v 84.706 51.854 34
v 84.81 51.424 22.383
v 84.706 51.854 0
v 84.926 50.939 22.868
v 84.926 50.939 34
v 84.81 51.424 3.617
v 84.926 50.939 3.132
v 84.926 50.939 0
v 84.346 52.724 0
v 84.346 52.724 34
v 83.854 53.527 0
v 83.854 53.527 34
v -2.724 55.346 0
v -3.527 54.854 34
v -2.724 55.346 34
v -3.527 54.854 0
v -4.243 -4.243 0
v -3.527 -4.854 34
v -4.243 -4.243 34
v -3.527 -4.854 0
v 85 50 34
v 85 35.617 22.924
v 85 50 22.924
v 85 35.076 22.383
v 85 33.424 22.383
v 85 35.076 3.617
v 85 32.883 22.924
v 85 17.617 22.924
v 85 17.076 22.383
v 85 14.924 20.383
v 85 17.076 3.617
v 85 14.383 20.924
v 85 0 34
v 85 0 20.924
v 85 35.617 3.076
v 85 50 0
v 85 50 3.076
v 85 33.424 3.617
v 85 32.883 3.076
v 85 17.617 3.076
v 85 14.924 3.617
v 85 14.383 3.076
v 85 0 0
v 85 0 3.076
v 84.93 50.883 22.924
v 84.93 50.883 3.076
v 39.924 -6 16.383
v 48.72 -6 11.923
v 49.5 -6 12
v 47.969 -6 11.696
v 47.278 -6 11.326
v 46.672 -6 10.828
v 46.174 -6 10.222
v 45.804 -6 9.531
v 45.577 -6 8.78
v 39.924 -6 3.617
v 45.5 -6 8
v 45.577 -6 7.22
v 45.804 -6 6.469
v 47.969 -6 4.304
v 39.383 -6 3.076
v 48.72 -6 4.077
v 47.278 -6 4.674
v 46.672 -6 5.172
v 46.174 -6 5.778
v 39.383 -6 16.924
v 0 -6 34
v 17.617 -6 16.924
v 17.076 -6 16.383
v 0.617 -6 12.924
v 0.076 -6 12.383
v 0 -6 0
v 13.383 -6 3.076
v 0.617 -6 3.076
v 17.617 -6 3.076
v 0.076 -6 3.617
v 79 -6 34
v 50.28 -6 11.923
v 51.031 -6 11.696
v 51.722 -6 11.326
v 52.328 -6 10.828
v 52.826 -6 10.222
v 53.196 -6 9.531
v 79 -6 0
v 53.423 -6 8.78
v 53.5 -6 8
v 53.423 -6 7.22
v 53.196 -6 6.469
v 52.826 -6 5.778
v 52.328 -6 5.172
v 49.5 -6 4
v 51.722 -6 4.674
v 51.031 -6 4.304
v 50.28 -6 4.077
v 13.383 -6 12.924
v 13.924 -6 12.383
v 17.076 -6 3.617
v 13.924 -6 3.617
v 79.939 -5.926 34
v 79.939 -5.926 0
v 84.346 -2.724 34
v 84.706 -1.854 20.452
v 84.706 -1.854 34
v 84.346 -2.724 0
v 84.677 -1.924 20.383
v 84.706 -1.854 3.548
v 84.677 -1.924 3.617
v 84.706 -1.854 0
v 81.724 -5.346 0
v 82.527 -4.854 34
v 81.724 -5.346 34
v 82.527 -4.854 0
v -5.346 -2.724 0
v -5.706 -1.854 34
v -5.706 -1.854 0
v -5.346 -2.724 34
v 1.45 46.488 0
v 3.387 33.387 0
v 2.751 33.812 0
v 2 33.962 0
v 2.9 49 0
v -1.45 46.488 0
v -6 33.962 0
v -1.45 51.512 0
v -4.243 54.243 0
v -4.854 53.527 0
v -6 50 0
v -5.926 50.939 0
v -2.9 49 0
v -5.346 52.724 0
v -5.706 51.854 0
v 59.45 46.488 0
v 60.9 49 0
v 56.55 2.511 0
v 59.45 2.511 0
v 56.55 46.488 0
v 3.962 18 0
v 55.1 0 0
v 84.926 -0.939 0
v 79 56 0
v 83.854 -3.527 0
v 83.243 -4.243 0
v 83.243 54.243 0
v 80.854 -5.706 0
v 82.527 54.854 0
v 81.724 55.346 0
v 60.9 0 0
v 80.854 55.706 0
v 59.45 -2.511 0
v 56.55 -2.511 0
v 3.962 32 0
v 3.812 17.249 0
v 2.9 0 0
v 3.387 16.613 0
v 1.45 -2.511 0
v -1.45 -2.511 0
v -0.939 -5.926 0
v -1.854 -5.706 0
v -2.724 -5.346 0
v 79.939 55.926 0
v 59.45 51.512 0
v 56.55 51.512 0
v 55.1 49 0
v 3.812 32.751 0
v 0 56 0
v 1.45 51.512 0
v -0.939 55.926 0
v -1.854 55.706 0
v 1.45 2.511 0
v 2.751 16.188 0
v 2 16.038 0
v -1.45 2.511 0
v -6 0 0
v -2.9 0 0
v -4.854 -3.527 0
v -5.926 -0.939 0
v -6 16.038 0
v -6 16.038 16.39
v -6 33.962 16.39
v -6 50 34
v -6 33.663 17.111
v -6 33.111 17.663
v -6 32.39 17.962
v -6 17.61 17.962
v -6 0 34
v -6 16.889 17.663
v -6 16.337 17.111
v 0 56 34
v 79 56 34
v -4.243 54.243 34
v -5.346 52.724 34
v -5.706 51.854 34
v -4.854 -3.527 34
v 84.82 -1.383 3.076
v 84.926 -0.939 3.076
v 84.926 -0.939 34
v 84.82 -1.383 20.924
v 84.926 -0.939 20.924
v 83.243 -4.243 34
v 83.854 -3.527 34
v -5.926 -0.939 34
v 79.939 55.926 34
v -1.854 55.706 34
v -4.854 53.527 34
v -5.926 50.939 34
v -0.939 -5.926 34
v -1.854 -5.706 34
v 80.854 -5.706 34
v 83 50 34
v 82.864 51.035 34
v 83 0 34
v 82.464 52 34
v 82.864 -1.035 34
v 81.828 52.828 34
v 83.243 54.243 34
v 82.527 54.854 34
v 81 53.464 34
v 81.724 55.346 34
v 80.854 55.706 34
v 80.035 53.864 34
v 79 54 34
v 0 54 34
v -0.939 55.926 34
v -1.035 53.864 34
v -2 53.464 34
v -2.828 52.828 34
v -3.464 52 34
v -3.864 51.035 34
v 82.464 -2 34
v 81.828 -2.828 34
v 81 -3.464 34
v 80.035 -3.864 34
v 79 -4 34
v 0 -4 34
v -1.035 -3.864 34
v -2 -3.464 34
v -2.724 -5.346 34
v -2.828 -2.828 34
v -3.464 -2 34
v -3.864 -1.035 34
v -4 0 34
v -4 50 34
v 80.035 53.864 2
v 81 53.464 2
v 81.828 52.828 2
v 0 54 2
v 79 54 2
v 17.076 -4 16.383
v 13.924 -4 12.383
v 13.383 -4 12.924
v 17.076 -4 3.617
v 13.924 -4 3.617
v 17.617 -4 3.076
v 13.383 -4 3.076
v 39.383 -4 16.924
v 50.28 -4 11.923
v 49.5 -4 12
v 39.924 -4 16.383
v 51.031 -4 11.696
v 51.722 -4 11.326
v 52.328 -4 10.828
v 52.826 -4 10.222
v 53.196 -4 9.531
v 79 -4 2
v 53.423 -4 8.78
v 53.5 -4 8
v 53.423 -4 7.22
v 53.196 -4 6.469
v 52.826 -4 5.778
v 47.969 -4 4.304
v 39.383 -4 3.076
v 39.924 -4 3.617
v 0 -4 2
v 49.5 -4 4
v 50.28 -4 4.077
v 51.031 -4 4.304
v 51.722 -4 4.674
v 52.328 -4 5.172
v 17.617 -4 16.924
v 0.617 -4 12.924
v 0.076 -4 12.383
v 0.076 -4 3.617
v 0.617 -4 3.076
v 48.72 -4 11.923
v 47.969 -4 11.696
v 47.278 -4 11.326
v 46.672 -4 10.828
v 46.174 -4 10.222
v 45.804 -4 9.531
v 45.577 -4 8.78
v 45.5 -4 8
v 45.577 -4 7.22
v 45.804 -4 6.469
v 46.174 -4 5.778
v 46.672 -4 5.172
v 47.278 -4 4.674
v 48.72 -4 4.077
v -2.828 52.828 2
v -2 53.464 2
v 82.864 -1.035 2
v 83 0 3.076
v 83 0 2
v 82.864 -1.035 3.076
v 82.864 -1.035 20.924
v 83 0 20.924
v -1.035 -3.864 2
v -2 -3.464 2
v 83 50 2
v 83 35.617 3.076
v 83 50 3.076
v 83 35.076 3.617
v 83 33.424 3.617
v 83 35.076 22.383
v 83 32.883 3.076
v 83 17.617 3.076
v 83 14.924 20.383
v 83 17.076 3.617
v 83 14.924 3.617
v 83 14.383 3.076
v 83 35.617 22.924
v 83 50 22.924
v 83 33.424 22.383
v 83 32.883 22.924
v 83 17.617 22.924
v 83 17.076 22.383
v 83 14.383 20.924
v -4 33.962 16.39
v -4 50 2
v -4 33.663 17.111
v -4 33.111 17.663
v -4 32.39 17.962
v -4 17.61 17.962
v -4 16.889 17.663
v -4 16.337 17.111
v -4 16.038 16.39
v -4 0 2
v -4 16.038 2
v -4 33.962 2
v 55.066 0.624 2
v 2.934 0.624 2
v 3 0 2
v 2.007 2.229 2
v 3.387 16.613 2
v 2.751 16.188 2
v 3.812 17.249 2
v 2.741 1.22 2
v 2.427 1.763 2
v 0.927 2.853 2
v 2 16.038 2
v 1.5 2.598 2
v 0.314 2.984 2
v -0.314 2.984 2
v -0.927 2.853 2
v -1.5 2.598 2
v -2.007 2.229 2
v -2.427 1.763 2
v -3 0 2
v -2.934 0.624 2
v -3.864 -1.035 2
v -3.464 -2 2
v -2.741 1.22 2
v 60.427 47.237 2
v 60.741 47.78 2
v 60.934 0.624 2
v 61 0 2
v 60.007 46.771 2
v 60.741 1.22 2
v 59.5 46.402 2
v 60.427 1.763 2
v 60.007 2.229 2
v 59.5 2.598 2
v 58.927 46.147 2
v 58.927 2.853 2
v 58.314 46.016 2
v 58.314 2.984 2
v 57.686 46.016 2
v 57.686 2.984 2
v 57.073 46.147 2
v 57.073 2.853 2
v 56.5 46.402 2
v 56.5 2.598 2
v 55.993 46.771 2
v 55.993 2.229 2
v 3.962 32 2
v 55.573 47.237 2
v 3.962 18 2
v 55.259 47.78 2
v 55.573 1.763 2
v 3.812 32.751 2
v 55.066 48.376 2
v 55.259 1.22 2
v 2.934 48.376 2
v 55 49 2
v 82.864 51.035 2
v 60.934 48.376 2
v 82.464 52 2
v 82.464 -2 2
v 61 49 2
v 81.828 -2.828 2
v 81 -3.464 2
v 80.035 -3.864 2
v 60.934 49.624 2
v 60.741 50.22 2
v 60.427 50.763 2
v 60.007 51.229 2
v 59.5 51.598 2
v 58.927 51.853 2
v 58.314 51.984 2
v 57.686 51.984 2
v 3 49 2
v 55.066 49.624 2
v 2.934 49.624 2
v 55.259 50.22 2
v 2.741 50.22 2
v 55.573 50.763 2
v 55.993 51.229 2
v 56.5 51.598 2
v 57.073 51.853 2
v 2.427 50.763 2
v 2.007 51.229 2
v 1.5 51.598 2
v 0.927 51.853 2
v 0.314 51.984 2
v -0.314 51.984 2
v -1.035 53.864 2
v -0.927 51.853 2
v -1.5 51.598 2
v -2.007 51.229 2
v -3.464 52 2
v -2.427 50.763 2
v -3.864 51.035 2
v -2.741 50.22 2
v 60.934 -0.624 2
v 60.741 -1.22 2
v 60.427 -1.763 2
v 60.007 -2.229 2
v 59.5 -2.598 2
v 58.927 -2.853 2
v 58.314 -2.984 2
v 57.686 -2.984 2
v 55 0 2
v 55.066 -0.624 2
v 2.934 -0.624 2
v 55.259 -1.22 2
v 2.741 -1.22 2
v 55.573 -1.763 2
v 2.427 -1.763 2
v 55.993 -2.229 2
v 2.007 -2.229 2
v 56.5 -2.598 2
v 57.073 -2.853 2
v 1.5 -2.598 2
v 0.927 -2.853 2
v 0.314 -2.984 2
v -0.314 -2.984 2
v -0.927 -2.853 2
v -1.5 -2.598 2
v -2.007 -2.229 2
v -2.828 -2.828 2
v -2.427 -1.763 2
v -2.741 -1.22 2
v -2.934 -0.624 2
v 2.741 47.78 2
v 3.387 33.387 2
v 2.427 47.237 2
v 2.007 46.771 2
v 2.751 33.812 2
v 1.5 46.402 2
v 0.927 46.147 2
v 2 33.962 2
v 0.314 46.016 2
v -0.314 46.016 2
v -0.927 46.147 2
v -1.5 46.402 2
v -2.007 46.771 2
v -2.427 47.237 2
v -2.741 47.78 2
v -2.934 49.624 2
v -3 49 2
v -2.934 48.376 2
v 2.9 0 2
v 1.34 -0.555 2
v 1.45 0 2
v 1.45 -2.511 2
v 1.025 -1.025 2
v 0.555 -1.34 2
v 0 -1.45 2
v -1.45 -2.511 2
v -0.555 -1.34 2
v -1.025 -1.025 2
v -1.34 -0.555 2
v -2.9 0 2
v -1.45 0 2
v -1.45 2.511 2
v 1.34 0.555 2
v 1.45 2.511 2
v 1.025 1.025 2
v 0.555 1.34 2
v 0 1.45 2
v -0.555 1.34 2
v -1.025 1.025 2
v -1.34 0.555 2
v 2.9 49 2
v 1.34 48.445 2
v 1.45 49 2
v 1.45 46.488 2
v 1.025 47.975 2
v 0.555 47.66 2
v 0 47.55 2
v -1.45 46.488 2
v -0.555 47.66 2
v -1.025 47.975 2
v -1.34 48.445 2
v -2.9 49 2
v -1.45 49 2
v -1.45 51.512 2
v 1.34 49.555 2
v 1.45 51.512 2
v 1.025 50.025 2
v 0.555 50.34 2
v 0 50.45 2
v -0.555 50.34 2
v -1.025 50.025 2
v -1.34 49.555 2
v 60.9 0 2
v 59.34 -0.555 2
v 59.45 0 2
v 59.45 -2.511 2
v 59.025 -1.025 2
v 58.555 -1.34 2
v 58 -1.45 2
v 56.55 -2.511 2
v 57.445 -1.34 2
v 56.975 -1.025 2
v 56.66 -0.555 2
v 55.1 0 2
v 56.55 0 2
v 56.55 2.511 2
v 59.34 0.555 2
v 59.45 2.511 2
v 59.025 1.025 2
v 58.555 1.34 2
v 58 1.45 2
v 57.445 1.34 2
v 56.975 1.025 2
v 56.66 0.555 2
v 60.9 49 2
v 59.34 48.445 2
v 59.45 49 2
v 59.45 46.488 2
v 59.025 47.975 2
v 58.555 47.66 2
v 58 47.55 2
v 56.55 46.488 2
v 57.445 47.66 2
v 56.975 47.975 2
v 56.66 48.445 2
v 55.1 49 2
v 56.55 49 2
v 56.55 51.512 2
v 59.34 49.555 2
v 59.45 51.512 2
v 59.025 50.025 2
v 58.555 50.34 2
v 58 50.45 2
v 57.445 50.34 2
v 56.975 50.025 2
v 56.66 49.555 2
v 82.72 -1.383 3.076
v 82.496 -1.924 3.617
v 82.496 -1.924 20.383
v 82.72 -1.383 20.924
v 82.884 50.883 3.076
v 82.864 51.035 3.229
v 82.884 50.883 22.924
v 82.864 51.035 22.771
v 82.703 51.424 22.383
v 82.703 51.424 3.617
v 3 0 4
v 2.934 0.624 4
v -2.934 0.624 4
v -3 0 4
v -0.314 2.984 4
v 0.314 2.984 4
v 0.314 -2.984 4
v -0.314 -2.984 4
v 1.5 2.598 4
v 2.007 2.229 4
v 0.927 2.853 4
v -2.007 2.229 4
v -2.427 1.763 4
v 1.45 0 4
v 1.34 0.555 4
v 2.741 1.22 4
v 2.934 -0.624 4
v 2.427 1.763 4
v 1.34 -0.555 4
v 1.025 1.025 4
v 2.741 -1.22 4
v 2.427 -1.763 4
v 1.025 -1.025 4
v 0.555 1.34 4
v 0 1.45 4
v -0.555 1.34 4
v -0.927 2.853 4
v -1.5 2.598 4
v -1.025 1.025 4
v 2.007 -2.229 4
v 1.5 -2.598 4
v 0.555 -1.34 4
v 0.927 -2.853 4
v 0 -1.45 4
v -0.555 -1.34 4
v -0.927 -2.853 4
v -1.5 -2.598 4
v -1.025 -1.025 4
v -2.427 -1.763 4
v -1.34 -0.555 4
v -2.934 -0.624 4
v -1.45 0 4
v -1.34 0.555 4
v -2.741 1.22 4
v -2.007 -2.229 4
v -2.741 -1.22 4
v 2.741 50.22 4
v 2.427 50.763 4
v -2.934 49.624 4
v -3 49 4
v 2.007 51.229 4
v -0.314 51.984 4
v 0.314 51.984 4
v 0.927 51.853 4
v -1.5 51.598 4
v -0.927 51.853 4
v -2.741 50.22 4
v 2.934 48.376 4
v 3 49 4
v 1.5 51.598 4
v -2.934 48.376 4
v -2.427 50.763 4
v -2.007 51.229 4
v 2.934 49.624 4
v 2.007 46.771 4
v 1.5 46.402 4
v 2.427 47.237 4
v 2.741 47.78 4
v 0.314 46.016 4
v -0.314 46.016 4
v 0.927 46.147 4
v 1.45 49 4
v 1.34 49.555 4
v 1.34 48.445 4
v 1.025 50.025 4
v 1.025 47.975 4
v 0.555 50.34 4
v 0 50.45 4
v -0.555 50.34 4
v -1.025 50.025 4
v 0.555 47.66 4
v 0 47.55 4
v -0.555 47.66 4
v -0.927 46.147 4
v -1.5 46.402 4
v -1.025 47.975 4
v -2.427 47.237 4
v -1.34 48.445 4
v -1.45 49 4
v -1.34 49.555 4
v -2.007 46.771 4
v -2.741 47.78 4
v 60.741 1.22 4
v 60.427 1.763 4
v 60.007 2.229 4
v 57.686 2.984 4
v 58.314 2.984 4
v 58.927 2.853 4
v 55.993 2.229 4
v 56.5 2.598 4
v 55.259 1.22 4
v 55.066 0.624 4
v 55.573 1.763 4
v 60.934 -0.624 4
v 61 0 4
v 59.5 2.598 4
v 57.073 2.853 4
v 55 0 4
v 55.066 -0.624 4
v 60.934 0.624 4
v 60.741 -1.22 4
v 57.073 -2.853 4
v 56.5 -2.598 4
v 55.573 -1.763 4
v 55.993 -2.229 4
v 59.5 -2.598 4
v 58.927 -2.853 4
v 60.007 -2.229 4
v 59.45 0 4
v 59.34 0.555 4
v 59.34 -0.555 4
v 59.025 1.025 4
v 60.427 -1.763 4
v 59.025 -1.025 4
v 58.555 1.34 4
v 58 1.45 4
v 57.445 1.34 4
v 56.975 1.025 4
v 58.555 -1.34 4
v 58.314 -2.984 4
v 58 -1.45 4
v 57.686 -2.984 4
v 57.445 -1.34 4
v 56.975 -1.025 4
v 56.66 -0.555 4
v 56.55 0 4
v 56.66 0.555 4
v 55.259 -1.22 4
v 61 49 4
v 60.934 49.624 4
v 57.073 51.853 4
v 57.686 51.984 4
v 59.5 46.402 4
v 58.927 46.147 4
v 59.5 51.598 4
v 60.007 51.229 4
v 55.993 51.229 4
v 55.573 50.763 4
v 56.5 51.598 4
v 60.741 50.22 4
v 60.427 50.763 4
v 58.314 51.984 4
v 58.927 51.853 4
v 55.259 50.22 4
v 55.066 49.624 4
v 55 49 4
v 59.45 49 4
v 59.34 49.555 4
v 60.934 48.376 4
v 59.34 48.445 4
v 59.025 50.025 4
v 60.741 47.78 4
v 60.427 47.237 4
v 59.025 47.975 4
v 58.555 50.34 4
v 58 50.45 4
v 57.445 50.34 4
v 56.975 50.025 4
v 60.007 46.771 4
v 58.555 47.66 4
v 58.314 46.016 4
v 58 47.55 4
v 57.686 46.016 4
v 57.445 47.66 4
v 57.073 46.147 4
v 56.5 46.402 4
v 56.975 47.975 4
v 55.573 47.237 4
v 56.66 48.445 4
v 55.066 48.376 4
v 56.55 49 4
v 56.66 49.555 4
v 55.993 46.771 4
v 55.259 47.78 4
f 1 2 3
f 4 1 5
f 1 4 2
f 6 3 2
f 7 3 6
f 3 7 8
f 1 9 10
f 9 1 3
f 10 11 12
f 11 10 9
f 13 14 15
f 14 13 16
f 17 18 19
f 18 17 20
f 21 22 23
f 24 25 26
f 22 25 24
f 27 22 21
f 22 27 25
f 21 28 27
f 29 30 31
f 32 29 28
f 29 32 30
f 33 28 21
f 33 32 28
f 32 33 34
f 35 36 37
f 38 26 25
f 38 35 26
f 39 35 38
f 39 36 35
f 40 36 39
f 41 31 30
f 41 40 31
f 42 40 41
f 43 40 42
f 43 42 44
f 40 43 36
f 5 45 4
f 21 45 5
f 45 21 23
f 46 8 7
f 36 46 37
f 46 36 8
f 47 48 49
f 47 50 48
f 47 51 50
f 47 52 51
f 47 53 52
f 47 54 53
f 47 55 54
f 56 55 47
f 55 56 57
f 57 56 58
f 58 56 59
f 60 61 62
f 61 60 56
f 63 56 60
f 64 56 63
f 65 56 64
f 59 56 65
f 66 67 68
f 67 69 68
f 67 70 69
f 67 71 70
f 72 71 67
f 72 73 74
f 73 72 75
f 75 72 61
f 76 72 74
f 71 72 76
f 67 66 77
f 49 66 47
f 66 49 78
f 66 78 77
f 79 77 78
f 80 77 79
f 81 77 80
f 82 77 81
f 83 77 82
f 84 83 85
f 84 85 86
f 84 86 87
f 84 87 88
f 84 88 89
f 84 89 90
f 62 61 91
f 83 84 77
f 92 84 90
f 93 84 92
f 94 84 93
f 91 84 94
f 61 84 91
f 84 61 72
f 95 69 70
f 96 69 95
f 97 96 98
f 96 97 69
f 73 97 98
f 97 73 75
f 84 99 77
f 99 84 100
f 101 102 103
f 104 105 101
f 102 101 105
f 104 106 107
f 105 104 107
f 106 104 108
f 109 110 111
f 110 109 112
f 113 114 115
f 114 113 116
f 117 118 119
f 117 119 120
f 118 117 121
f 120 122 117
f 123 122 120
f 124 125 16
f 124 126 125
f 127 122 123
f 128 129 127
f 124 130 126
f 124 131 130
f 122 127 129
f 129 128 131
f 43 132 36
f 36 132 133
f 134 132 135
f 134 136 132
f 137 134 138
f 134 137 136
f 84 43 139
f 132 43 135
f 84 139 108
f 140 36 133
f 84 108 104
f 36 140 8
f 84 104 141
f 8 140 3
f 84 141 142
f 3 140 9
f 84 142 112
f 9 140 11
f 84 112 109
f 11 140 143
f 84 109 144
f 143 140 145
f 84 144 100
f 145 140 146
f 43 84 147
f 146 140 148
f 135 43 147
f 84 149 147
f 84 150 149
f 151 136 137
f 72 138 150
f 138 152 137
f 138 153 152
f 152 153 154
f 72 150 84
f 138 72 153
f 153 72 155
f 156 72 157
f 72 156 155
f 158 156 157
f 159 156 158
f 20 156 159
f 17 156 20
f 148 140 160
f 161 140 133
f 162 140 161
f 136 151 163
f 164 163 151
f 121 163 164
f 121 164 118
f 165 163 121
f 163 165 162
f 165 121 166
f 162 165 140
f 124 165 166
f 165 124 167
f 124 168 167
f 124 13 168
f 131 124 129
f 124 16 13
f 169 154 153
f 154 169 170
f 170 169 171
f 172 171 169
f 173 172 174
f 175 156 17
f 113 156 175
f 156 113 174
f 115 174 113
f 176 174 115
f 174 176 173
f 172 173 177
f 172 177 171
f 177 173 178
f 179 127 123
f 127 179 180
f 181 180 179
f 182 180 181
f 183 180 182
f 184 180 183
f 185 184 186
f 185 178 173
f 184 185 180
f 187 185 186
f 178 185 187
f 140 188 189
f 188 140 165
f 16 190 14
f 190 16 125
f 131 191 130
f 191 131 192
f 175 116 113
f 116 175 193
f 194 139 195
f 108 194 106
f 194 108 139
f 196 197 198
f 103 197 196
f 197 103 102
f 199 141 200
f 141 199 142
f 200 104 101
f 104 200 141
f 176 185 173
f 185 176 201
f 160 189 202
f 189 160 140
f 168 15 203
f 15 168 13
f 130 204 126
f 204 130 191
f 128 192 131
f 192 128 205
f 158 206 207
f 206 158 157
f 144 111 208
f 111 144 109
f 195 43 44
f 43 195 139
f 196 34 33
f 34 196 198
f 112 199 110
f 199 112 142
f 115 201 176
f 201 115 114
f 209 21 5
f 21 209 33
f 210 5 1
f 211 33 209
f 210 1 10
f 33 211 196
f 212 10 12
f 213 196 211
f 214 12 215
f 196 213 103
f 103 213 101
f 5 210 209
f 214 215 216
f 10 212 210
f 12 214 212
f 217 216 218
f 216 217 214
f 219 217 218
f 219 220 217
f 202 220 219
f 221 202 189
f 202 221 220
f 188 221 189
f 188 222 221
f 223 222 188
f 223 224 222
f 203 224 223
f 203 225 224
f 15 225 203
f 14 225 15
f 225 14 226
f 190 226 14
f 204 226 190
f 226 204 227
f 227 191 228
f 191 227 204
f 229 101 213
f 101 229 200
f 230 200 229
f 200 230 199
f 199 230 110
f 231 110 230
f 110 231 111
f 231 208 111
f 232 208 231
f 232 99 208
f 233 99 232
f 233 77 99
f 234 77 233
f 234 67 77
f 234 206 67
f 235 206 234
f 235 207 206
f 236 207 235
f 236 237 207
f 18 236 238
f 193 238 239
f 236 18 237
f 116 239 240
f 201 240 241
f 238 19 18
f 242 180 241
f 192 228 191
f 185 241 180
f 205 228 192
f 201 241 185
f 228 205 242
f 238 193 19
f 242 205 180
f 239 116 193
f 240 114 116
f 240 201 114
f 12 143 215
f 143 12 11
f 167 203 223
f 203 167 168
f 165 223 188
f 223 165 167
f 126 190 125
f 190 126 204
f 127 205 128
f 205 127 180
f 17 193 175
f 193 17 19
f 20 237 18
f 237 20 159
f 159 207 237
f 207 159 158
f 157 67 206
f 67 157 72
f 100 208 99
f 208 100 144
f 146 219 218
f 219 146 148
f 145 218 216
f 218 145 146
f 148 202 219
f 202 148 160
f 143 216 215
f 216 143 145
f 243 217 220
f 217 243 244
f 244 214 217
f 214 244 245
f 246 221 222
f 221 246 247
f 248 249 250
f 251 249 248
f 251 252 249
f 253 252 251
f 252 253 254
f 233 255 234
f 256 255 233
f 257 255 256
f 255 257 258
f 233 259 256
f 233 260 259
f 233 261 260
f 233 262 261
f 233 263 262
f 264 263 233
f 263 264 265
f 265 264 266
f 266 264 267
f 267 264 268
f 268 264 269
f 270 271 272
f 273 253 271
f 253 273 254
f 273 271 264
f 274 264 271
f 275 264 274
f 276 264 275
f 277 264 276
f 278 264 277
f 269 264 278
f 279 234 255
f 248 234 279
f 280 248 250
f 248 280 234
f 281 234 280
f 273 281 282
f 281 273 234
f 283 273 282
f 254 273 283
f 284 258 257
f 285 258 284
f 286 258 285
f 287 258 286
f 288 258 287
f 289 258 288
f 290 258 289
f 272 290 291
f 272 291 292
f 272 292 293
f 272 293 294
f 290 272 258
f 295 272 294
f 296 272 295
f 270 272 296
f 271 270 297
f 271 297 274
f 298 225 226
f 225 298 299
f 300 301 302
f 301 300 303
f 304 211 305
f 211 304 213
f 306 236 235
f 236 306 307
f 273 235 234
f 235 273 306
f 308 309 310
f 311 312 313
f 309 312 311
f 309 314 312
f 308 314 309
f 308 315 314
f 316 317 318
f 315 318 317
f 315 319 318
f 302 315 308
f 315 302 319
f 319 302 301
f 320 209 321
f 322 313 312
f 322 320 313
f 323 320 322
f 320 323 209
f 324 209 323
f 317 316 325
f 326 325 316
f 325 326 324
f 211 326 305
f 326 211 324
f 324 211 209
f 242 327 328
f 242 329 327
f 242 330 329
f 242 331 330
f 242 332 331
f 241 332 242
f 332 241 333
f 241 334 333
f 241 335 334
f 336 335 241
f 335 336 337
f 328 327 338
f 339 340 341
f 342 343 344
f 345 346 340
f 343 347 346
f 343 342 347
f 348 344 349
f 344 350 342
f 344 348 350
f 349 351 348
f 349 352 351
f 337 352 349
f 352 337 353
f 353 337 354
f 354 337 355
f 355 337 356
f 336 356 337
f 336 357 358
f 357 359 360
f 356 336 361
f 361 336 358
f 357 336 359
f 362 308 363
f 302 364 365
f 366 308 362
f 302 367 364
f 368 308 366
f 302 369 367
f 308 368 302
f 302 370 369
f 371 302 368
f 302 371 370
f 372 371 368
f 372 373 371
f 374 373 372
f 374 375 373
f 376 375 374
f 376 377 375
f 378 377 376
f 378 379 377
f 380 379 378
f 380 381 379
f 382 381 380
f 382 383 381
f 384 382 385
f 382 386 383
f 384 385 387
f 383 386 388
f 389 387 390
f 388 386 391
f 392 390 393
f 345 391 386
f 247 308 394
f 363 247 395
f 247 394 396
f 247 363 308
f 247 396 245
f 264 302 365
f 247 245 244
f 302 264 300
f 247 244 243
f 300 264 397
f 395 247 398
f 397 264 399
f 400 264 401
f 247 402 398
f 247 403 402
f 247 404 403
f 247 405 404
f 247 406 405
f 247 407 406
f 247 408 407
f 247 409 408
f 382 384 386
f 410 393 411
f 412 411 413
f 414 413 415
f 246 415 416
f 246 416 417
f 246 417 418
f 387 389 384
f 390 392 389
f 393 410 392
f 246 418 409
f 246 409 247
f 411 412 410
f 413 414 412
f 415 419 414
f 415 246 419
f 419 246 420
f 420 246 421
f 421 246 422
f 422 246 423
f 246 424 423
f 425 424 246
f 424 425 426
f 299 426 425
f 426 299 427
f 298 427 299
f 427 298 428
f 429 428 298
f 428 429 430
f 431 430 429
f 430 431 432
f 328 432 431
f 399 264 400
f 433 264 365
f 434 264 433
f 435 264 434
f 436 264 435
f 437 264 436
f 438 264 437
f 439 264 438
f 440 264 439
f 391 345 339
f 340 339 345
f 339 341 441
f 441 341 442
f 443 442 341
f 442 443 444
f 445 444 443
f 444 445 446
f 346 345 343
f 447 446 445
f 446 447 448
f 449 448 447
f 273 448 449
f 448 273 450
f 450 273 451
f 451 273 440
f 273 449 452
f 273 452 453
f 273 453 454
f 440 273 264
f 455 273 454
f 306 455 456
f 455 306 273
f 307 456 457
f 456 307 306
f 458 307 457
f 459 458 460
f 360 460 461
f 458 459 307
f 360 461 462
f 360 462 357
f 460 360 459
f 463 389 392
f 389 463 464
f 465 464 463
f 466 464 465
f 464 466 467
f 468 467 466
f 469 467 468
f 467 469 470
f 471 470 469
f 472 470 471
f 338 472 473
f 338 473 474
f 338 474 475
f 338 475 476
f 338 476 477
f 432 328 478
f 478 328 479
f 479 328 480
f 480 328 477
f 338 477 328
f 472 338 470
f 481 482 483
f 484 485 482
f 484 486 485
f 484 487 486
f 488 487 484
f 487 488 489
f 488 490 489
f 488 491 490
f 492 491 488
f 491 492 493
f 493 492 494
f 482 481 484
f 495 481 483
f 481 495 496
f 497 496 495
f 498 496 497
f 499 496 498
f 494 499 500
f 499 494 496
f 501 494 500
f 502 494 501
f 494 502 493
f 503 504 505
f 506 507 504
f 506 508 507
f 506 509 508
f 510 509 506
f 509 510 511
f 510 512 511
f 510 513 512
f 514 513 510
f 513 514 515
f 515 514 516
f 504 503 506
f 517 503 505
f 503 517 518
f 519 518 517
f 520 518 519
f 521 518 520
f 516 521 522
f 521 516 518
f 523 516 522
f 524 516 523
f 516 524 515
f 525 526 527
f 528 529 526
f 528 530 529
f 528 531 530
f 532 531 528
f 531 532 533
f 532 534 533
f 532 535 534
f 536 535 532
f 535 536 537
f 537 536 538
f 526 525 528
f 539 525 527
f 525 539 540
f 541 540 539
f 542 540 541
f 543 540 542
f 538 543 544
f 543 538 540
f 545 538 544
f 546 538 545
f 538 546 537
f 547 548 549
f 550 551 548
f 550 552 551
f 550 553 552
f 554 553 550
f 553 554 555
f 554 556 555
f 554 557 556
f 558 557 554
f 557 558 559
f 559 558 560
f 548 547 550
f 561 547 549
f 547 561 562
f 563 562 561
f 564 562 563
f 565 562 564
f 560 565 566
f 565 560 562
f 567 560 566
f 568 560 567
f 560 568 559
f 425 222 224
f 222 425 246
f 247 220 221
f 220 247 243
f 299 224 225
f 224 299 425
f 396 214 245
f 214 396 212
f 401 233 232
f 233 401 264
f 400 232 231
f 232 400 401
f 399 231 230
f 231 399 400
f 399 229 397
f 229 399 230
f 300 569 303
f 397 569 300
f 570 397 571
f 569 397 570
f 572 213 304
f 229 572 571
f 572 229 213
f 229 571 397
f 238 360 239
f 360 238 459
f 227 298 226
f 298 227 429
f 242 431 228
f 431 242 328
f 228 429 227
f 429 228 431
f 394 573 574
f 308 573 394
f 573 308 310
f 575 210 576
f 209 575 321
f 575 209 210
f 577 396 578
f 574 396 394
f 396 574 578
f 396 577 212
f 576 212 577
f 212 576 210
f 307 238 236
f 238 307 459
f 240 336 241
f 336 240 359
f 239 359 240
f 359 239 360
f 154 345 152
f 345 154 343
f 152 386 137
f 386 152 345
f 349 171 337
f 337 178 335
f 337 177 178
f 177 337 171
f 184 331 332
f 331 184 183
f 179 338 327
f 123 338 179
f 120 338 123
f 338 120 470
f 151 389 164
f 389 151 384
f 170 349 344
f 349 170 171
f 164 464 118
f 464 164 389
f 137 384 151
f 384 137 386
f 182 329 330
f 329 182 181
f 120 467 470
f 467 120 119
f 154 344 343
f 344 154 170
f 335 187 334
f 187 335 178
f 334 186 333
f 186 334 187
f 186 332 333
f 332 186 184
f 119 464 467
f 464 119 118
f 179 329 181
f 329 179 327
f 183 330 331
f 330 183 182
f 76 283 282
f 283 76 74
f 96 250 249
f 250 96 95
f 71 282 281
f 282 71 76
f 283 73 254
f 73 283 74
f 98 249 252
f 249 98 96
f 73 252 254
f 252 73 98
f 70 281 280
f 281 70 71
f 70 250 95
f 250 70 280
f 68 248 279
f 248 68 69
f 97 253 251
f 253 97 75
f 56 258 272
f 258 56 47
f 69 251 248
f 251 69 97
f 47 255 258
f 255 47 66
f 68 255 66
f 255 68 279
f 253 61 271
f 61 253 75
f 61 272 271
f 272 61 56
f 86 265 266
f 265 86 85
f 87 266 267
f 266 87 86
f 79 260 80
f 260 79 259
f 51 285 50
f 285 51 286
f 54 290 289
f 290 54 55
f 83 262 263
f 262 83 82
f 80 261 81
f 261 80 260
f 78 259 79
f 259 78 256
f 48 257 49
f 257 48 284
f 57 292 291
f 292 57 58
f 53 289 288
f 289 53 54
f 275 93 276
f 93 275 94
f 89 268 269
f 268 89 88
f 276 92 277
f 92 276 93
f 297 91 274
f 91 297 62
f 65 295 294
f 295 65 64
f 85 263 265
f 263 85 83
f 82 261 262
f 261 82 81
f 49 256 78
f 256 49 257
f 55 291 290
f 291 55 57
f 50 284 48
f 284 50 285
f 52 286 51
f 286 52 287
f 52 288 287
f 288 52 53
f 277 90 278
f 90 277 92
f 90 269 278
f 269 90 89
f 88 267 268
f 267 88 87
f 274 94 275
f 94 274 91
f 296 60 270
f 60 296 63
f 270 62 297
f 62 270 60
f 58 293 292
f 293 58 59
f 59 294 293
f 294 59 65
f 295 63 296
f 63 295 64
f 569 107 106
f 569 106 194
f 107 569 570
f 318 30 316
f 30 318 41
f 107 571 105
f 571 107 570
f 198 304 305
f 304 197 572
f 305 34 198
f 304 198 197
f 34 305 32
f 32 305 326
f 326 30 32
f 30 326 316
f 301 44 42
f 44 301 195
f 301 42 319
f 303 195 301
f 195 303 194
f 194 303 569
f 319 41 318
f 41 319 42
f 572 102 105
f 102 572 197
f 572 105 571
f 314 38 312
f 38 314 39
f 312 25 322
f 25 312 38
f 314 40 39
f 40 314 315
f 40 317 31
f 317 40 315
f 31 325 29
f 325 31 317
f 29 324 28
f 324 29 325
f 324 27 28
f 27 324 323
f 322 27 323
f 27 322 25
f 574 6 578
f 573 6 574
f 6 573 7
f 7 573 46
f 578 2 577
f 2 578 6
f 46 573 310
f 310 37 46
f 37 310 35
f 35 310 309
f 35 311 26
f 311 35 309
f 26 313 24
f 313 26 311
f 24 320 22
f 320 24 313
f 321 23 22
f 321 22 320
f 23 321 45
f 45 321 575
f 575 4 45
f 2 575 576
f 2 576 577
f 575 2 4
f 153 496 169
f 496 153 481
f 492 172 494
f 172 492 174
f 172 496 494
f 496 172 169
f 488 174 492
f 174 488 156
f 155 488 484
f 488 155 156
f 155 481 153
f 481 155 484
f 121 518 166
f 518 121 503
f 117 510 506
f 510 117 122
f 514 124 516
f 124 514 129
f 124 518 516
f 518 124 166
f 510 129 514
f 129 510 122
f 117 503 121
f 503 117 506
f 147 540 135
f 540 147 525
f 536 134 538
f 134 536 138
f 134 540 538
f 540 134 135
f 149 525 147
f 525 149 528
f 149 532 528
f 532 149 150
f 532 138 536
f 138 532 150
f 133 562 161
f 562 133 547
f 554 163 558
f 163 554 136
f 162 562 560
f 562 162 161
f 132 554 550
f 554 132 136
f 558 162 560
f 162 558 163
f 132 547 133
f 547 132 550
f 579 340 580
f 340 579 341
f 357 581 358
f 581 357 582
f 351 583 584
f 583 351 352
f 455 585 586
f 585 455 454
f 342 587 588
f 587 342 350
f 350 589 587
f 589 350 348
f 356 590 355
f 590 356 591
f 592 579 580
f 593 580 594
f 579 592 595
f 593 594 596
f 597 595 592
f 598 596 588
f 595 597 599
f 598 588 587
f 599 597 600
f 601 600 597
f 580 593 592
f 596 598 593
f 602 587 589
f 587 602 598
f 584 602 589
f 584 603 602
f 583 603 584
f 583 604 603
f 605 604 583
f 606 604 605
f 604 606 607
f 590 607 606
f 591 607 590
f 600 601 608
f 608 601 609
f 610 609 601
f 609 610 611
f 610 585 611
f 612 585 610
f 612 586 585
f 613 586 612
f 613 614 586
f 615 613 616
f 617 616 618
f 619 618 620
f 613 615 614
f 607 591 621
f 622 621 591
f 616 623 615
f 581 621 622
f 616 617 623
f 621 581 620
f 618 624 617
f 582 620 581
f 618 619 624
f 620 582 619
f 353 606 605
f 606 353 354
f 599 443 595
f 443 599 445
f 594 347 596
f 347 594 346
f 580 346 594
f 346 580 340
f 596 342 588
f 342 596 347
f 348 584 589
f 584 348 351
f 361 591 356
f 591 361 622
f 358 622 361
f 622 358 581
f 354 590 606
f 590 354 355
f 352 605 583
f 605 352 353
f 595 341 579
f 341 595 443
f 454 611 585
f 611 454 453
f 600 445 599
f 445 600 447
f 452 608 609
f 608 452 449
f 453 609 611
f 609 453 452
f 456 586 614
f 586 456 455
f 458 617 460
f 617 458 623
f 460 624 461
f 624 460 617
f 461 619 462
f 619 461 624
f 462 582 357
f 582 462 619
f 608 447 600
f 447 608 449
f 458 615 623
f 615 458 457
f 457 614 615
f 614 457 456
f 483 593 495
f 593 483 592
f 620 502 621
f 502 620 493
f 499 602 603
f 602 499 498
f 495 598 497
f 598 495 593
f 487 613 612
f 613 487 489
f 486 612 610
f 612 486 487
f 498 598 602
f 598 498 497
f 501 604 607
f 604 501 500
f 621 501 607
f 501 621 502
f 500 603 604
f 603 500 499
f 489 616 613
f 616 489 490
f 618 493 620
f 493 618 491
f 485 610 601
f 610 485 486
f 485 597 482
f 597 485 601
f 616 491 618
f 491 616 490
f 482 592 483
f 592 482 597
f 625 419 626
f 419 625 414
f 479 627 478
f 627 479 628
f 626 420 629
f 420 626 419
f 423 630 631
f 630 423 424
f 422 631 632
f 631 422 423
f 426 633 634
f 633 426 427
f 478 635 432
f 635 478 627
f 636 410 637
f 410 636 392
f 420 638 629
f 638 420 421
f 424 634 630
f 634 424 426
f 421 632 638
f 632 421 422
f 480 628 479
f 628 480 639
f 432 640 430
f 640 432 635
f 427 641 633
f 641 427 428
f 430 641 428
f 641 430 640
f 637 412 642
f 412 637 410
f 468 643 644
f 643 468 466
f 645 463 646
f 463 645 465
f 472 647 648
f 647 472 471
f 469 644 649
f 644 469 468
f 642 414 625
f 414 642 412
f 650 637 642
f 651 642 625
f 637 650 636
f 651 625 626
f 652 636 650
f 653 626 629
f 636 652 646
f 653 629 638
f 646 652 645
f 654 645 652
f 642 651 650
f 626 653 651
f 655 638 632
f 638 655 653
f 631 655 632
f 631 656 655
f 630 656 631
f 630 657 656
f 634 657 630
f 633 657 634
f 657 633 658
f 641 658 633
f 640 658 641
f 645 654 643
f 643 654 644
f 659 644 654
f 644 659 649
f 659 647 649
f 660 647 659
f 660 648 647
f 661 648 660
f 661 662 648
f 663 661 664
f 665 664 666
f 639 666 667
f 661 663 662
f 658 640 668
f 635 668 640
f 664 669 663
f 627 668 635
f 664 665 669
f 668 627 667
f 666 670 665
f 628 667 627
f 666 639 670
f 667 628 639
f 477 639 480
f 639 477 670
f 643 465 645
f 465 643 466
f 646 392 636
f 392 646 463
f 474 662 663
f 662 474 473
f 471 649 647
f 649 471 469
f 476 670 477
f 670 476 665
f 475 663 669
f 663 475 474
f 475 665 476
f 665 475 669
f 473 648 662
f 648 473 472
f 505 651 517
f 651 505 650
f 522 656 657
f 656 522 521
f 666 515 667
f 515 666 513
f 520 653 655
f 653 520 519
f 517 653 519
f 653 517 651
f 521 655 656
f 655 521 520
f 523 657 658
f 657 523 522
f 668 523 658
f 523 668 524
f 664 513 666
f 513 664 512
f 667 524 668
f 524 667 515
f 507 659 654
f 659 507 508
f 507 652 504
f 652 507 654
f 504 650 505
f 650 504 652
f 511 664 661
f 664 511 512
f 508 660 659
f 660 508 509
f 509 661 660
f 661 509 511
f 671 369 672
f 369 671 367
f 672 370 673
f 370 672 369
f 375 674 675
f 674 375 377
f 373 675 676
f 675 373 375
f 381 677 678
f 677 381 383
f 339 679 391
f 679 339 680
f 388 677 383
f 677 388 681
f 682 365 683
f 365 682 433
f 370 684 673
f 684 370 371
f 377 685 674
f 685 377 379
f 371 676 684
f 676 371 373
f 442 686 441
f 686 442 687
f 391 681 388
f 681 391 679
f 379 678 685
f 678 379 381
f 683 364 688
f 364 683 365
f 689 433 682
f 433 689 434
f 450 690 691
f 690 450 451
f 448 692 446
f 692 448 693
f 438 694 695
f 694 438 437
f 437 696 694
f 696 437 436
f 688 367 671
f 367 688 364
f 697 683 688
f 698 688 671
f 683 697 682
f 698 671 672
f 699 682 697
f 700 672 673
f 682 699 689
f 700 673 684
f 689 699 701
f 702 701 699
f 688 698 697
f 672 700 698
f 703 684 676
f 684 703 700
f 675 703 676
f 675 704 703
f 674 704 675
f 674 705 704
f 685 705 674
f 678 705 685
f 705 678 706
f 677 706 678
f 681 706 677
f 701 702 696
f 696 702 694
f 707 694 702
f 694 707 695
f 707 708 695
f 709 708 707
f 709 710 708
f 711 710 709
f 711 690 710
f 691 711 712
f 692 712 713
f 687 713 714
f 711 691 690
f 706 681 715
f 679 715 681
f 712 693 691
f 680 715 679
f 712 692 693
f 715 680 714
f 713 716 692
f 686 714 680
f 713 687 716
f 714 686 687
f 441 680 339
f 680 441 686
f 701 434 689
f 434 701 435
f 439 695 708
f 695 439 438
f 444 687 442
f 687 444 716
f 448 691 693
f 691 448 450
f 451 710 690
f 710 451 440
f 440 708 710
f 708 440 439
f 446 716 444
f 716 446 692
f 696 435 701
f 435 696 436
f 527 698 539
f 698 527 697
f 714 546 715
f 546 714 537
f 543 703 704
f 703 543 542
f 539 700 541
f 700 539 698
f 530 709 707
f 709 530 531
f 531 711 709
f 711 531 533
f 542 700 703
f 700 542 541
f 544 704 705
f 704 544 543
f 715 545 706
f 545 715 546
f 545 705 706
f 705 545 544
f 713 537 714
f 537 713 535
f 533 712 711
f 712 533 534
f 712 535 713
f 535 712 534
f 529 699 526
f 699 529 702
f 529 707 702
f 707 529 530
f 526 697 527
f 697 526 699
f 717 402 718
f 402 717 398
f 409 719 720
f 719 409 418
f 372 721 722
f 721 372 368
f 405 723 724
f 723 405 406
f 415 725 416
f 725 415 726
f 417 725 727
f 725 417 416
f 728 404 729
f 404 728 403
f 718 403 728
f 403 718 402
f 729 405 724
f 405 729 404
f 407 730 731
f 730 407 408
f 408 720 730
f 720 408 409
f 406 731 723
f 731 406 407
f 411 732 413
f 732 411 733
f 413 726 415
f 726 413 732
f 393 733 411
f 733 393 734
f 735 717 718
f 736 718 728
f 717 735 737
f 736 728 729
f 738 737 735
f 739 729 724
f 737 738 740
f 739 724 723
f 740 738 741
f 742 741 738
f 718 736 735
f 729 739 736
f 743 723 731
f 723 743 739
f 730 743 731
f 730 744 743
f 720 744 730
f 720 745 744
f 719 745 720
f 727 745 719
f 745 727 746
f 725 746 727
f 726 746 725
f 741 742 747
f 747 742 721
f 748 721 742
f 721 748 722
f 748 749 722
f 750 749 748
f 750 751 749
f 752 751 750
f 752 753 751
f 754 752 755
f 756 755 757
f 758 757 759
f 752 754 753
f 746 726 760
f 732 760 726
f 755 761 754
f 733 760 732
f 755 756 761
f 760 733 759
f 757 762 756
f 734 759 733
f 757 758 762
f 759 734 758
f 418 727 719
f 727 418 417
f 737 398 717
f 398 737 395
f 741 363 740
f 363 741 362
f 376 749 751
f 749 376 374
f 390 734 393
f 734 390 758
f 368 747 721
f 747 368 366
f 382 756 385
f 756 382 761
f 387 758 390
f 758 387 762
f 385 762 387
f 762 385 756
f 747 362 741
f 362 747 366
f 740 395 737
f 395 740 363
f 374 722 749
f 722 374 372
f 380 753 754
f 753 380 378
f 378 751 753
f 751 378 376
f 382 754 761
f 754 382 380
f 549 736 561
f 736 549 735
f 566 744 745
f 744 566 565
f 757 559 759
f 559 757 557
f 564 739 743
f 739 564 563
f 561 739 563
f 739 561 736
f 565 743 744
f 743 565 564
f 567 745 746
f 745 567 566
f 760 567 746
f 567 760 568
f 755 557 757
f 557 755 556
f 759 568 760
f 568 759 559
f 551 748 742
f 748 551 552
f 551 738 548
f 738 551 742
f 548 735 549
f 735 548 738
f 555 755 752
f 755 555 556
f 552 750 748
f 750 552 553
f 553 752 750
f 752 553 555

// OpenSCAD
bottom_tk = 2;			//bottom ThicKness
side_tk = 2;			//side ThicKness
support_tk = 2; 		//support ThicKness
box_height = 30;
screw_size = 2.5; 		//M2.5

mnk_r_main = 4; 		// must be > 3
mnk_r_front = 1;
mnk_r_right = 1;
mnk_r_left = 2;

difference(){
linear_extrude(box_height+bottom_tk+support_tk)
	minkowski(){
		square([79,50]);
		circle(mnk_r_main+side_tk, $fn=40);
	}//minkowski external 

translate([0,0,bottom_tk])
linear_extrude(box_height+bottom_tk+support_tk)
	minkowski(){
		square([79,50]);
		circle(mnk_r_main, $fn=24);
	}//minkowski internal


//SD card + DSI(Display)
translate([-8,20-mnk_r_left,0])
	minkowski(){
		cube([10,14,14+support_tk]);
		sphere(mnk_r_left, $fn=mnk_r_left*8);
	}
//power
translate([1,-(mnk_r_main+side_tk ),bottom_tk+support_tk])
	minkowski(){
		cube([12,10,8]);
		sphere(mnk_r_front,$fn=mnk_r_front*8);
	}
//hdmi
translate([18,-(mnk_r_main+side_tk),bottom_tk+support_tk])
	minkowski(){
		cube([21,10,12]);
		sphere(mnk_r_front,$fn=mnk_r_front*8);
	}
//audio
translate([49.5,-(side_tk),bottom_tk*2+support_tk+2])
	rotate([90,0,0])
		cylinder(10,4,4, $fn=32);


//Ethernet
translate([80,-1,bottom_tk+support_tk])
	minkowski(){
		cube([10,17-mnk_r_right*2,18-mnk_r_right*2]);//Z=13.5
		sphere(mnk_r_right,$fn=mnk_r_right*8);
	}
//USBx2
translate([80,18,bottom_tk+support_tk])
	minkowski(){
		cube([10,16.5-mnk_r_right*2,20-mnk_r_right*2]);//Z=16.0
		sphere(mnk_r_right,$fn=mnk_r_right*8);
	}
//USBx2
translate([80,36,bottom_tk+support_tk])
	minkowski(){
		cube([10,16.5-mnk_r_right*2,20-mnk_r_right*2]);//Z=16.0
		sphere(mnk_r_right,$fn=mnk_r_right*8);
	}

// holes position: 58, 49
translate([0, 0, -1])
	cylinder(bottom_tk*3, screw_size/2+0.2, screw_size/2+0.2, $fn=16);
translate([0, 49, -1])
	cylinder(bottom_tk*3, screw_size/2+0.2, screw_size/2+0.2, $fn=16);
translate([58, 0, -1])
	cylinder(bottom_tk*3, screw_size/2+0.2, screw_size/2+0.2, $fn=16);
translate([58, 49, -1])
	cylinder(bottom_tk*3, screw_size/2+0.2, screw_size/2+0.2, $fn=16);

// Nut holes from bottom, position: 58, 49
translate([0, 0, -1])
	cylinder(3, screw_size+0.4, screw_size+0.4, $fn=6);
translate([0, 49, -1])
	cylinder(3, screw_size+0.4, screw_size+0.4, $fn=6);
translate([58, 0, -1])
	cylinder(3, screw_size+0.4, screw_size+0.4, $fn=6);
translate([58, 49, -1])
	cylinder(3, screw_size+0.4, screw_size+0.4, $fn=6);

} //difference box


// board support on top of holes at 0, 0, 58, 49
difference(){
	translate([0, 0, bottom_tk])
		cylinder(support_tk, 3, 3, $fn=30);
	translate([0, 0, bottom_tk-1])
		cylinder(support_tk*2, screw_size/2+0.2, screw_size/2+0.2, $fn=16);
}
difference(){
	translate([0, 49, bottom_tk])
		cylinder(support_tk, 3, 3, $fn=30);
	translate([0, 49, bottom_tk-1])
		cylinder(support_tk*2, screw_size/2+0.2, screw_size/2+0.2, $fn=16);
}

difference(){
	translate([58, 0, bottom_tk])
		cylinder(support_tk, 3, 3, $fn=30);
	translate([58, 0, bottom_tk-1])
		cylinder(support_tk*2, screw_size/2+0.2, screw_size/2+0.2, $fn=16);
}

difference(){
	translate([58, 49, bottom_tk])
		cylinder(support_tk, 3, 3, $fn=30);
	translate([58, 49, bottom_tk-1])
		cylinder(support_tk*2, screw_size/2+0.2, screw_size/2+0.2, $fn=16);
}


//holes position
/*
translate([0, 0, 0])
translate([0, 49, 0])
translate([58, 0, 0])
translate([58, 0, 0])
*/
